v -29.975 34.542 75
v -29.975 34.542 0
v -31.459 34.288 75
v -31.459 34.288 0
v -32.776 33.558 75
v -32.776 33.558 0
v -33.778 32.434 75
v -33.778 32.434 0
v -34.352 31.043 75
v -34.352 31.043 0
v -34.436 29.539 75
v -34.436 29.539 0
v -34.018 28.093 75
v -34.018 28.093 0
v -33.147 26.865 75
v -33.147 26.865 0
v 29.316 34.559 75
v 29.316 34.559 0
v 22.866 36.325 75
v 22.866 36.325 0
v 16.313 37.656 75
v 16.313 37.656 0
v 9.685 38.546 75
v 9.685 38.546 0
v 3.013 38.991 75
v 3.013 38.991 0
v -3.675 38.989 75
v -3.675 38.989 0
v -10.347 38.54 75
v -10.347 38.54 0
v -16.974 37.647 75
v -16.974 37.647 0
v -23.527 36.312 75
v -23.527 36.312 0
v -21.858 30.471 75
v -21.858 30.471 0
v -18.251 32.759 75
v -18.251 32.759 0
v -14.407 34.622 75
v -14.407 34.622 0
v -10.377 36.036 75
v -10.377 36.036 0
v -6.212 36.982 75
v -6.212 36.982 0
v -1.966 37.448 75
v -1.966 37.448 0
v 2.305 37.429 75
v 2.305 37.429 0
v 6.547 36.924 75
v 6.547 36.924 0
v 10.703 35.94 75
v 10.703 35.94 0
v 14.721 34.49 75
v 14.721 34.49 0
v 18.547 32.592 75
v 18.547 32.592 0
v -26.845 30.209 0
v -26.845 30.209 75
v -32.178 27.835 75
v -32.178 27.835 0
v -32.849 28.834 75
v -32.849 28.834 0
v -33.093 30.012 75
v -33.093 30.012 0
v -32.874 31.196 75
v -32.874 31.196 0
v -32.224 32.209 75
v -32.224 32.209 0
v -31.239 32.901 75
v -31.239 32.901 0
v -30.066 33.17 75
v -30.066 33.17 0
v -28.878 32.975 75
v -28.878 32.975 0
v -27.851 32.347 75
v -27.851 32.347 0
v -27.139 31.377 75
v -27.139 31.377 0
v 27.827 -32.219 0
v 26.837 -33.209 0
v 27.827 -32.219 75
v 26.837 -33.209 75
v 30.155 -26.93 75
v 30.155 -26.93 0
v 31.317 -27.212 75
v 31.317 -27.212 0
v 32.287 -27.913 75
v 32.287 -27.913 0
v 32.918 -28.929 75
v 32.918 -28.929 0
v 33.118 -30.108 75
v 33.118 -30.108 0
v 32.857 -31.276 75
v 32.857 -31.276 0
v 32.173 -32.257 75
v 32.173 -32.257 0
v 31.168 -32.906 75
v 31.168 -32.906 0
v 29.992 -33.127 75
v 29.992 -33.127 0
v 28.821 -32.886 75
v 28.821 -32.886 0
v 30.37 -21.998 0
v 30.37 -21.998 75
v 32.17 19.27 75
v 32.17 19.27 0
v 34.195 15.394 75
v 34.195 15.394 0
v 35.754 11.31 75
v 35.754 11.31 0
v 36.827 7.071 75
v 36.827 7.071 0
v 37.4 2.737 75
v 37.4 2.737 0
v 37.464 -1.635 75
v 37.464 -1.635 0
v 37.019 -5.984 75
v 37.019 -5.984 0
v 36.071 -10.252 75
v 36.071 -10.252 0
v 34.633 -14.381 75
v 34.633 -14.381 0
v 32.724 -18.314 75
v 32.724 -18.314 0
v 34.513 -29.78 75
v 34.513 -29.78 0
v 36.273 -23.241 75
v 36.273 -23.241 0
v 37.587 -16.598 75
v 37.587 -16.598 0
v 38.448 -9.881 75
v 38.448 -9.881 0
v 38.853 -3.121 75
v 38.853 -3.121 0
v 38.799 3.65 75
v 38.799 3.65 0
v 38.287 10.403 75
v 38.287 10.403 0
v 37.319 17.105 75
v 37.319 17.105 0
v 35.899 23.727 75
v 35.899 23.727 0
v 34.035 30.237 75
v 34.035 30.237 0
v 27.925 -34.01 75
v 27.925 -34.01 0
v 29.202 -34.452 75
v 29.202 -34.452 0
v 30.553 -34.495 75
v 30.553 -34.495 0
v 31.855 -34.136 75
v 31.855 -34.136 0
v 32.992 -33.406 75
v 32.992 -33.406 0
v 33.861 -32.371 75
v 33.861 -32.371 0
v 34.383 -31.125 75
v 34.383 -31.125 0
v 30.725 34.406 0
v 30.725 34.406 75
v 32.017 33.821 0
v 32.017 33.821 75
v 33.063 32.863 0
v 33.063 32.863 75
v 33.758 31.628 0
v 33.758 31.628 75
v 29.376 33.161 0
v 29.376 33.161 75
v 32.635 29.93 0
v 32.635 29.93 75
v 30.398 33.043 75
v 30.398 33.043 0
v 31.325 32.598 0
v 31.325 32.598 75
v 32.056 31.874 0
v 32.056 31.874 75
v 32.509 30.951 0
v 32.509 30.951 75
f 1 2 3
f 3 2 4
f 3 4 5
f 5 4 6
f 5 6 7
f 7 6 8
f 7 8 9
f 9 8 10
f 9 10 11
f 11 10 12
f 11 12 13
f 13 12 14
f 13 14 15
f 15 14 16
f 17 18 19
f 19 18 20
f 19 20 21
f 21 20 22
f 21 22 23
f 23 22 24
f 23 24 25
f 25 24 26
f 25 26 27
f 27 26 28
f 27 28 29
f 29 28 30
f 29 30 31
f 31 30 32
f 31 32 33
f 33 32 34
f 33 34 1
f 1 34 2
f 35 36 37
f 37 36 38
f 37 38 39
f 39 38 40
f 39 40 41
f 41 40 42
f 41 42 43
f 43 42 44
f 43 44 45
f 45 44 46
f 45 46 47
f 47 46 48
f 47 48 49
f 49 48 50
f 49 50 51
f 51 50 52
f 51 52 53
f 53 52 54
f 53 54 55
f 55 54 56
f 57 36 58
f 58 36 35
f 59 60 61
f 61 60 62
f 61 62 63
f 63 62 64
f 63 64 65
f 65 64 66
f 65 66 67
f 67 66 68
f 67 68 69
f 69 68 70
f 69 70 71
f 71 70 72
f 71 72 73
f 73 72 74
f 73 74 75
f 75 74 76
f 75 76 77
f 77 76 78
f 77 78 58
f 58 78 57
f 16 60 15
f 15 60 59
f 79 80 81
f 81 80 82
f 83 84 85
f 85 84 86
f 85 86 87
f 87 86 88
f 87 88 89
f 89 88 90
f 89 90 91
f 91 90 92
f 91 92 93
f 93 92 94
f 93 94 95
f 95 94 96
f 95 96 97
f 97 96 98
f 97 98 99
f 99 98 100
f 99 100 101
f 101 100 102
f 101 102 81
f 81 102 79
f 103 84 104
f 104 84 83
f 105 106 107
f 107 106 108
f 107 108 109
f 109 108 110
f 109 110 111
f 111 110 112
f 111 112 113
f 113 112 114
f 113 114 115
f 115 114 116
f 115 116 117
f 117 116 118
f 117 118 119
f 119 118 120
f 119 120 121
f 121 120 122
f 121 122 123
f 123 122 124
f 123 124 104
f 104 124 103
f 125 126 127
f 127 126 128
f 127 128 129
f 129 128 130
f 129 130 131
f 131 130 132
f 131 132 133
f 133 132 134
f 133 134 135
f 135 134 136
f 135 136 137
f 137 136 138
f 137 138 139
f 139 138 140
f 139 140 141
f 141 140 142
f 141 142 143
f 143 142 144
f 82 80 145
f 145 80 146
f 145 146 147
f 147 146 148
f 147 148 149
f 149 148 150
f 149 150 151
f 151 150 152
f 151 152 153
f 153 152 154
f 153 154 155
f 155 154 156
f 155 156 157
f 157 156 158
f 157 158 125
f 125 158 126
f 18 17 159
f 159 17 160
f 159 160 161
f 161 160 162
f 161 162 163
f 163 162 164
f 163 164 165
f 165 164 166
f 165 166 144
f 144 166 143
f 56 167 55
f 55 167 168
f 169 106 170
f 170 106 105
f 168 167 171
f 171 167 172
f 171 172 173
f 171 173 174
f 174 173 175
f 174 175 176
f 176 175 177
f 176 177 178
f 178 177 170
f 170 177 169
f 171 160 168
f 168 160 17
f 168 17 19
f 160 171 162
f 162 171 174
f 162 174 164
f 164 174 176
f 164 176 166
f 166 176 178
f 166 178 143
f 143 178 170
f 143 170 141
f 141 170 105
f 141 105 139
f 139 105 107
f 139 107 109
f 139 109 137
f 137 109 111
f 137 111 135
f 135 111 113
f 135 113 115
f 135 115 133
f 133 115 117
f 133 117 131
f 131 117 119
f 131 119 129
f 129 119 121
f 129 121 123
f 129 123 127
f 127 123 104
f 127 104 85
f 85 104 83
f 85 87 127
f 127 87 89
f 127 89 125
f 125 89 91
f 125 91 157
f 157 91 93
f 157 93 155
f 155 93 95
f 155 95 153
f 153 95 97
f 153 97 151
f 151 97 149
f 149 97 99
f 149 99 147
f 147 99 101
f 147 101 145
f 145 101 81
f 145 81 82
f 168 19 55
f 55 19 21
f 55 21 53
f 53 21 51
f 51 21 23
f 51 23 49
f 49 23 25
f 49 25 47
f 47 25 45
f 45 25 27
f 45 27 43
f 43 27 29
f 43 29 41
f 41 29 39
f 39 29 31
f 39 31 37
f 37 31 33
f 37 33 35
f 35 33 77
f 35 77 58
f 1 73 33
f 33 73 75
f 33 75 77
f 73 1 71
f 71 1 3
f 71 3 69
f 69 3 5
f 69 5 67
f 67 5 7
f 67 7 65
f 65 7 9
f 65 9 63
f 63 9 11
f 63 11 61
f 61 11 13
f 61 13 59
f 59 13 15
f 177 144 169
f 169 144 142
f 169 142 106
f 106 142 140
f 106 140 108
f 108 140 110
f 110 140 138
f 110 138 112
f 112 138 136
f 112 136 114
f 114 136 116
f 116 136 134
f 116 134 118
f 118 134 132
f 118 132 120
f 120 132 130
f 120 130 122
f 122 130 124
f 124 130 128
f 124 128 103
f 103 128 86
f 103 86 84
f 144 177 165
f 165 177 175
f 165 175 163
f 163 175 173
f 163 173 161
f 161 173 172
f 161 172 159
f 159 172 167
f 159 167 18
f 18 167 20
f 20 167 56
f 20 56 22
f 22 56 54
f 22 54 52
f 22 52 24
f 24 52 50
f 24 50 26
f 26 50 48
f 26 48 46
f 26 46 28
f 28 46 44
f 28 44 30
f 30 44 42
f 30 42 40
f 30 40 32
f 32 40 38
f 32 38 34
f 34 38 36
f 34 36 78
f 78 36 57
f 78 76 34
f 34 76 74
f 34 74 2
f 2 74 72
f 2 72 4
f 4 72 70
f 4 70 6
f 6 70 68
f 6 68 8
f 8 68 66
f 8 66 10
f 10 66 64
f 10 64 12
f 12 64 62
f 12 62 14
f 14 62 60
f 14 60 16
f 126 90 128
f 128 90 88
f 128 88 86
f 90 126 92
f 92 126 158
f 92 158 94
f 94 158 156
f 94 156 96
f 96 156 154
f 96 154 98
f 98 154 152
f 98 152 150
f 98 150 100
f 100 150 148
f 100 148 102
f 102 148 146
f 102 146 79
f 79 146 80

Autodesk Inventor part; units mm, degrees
ref_plane "YZ Plane" through (0, 0, 0) normal (1, 0, 0) x (0, 1, 0)
ref_plane "XZ Plane" through (0, 0, 0) normal (0, 1, 0) x (-1, 0, 0)
ref_plane "XY Plane" through (0, 0, 0) normal (0, 0, 1) x (1, 0, 0)
sketch "Sketch1" plane through (0, 0, 0) normal (0, 0, 1) x (1, 0, 0)
  arc A0 (32.6355, 29.9298) -> (29.3759, 33.1607) centre (29.5384, 30.0649) ccw
  arc A1 (27.8274, -32.2191) -> (30.1546, -26.93) centre (30.0194, -30.0271) ccw
  arc A2 (32.4933, 26.671) -> (34.0351, 30.2371) centre (29.5384, 30.0649) ccw
  arc A3 (26.8375, -33.2091) -> (34.5127, -29.7804) centre (30.0194, -30.0271) ccw
  line L0 (-29.9673, 30.0452) -> (-33.1472, 26.8653)
  line L1 (-29.9673, 30.0452) -> (-25.4702, 30.0452) construction
  line L2 (-29.9673, 30.0452) -> (-21.8579, 30.471)
  line L3 (30.0194, -30.0271) -> (30.3698, -21.9984)
  line L4 (30.0194, -30.0271) -> (26.8375, -33.2091)
  circle A4 centre (0, 0) radius 37.5
  arc A5 (34.5127, -29.7804) -> (34.0351, 30.2371) centre (-61.1139, -0.5306) ccw
  arc A6 (29.3158, 34.5594) -> (-29.9754, 34.5423) centre (-0.3022, -60.9538) ccw
  line L5 (18.5473, 32.5922) -> (29.3759, 33.1607)
  line L6 (32.1704, 19.2696) -> (32.6355, 29.9298)
  arc A7 (29.3158, 34.5594) -> (26.1185, 32.9896) centre (29.5384, 30.0649) ccw
  arc A8 (34.0351, 30.2371) -> (29.3158, 34.5594) centre (29.5384, 30.0649) ccw
  arc A9 (-29.9754, 34.5423) -> (-33.1472, 26.8653) centre (-29.9673, 30.0452) ccw
  arc A10 (-26.8454, 30.2091) -> (-32.1778, 27.8347) centre (-29.9673, 30.0452) ccw
  dimension "d0" = 6.2
  dimension "d1" = 6.2
  dimension "d6" = 9
  dimension "d7" = 9
  dimension "d8" = 135
  dimension "d9" = 75
  dimension "d11" = 100
  dimension "d12" = 100
extrude "Extrusion1" add sketch "Sketch1" along normal blind 75 contours A0 L5 A7 A8 A2 L6 | A2 A5 A3 L4 A1 L3 A4 L6 | L5 A4 L2 A10 L0 A9 A6 A7
properties part number "Cage60mm-2sides-InnerD75mm-L75mm"
